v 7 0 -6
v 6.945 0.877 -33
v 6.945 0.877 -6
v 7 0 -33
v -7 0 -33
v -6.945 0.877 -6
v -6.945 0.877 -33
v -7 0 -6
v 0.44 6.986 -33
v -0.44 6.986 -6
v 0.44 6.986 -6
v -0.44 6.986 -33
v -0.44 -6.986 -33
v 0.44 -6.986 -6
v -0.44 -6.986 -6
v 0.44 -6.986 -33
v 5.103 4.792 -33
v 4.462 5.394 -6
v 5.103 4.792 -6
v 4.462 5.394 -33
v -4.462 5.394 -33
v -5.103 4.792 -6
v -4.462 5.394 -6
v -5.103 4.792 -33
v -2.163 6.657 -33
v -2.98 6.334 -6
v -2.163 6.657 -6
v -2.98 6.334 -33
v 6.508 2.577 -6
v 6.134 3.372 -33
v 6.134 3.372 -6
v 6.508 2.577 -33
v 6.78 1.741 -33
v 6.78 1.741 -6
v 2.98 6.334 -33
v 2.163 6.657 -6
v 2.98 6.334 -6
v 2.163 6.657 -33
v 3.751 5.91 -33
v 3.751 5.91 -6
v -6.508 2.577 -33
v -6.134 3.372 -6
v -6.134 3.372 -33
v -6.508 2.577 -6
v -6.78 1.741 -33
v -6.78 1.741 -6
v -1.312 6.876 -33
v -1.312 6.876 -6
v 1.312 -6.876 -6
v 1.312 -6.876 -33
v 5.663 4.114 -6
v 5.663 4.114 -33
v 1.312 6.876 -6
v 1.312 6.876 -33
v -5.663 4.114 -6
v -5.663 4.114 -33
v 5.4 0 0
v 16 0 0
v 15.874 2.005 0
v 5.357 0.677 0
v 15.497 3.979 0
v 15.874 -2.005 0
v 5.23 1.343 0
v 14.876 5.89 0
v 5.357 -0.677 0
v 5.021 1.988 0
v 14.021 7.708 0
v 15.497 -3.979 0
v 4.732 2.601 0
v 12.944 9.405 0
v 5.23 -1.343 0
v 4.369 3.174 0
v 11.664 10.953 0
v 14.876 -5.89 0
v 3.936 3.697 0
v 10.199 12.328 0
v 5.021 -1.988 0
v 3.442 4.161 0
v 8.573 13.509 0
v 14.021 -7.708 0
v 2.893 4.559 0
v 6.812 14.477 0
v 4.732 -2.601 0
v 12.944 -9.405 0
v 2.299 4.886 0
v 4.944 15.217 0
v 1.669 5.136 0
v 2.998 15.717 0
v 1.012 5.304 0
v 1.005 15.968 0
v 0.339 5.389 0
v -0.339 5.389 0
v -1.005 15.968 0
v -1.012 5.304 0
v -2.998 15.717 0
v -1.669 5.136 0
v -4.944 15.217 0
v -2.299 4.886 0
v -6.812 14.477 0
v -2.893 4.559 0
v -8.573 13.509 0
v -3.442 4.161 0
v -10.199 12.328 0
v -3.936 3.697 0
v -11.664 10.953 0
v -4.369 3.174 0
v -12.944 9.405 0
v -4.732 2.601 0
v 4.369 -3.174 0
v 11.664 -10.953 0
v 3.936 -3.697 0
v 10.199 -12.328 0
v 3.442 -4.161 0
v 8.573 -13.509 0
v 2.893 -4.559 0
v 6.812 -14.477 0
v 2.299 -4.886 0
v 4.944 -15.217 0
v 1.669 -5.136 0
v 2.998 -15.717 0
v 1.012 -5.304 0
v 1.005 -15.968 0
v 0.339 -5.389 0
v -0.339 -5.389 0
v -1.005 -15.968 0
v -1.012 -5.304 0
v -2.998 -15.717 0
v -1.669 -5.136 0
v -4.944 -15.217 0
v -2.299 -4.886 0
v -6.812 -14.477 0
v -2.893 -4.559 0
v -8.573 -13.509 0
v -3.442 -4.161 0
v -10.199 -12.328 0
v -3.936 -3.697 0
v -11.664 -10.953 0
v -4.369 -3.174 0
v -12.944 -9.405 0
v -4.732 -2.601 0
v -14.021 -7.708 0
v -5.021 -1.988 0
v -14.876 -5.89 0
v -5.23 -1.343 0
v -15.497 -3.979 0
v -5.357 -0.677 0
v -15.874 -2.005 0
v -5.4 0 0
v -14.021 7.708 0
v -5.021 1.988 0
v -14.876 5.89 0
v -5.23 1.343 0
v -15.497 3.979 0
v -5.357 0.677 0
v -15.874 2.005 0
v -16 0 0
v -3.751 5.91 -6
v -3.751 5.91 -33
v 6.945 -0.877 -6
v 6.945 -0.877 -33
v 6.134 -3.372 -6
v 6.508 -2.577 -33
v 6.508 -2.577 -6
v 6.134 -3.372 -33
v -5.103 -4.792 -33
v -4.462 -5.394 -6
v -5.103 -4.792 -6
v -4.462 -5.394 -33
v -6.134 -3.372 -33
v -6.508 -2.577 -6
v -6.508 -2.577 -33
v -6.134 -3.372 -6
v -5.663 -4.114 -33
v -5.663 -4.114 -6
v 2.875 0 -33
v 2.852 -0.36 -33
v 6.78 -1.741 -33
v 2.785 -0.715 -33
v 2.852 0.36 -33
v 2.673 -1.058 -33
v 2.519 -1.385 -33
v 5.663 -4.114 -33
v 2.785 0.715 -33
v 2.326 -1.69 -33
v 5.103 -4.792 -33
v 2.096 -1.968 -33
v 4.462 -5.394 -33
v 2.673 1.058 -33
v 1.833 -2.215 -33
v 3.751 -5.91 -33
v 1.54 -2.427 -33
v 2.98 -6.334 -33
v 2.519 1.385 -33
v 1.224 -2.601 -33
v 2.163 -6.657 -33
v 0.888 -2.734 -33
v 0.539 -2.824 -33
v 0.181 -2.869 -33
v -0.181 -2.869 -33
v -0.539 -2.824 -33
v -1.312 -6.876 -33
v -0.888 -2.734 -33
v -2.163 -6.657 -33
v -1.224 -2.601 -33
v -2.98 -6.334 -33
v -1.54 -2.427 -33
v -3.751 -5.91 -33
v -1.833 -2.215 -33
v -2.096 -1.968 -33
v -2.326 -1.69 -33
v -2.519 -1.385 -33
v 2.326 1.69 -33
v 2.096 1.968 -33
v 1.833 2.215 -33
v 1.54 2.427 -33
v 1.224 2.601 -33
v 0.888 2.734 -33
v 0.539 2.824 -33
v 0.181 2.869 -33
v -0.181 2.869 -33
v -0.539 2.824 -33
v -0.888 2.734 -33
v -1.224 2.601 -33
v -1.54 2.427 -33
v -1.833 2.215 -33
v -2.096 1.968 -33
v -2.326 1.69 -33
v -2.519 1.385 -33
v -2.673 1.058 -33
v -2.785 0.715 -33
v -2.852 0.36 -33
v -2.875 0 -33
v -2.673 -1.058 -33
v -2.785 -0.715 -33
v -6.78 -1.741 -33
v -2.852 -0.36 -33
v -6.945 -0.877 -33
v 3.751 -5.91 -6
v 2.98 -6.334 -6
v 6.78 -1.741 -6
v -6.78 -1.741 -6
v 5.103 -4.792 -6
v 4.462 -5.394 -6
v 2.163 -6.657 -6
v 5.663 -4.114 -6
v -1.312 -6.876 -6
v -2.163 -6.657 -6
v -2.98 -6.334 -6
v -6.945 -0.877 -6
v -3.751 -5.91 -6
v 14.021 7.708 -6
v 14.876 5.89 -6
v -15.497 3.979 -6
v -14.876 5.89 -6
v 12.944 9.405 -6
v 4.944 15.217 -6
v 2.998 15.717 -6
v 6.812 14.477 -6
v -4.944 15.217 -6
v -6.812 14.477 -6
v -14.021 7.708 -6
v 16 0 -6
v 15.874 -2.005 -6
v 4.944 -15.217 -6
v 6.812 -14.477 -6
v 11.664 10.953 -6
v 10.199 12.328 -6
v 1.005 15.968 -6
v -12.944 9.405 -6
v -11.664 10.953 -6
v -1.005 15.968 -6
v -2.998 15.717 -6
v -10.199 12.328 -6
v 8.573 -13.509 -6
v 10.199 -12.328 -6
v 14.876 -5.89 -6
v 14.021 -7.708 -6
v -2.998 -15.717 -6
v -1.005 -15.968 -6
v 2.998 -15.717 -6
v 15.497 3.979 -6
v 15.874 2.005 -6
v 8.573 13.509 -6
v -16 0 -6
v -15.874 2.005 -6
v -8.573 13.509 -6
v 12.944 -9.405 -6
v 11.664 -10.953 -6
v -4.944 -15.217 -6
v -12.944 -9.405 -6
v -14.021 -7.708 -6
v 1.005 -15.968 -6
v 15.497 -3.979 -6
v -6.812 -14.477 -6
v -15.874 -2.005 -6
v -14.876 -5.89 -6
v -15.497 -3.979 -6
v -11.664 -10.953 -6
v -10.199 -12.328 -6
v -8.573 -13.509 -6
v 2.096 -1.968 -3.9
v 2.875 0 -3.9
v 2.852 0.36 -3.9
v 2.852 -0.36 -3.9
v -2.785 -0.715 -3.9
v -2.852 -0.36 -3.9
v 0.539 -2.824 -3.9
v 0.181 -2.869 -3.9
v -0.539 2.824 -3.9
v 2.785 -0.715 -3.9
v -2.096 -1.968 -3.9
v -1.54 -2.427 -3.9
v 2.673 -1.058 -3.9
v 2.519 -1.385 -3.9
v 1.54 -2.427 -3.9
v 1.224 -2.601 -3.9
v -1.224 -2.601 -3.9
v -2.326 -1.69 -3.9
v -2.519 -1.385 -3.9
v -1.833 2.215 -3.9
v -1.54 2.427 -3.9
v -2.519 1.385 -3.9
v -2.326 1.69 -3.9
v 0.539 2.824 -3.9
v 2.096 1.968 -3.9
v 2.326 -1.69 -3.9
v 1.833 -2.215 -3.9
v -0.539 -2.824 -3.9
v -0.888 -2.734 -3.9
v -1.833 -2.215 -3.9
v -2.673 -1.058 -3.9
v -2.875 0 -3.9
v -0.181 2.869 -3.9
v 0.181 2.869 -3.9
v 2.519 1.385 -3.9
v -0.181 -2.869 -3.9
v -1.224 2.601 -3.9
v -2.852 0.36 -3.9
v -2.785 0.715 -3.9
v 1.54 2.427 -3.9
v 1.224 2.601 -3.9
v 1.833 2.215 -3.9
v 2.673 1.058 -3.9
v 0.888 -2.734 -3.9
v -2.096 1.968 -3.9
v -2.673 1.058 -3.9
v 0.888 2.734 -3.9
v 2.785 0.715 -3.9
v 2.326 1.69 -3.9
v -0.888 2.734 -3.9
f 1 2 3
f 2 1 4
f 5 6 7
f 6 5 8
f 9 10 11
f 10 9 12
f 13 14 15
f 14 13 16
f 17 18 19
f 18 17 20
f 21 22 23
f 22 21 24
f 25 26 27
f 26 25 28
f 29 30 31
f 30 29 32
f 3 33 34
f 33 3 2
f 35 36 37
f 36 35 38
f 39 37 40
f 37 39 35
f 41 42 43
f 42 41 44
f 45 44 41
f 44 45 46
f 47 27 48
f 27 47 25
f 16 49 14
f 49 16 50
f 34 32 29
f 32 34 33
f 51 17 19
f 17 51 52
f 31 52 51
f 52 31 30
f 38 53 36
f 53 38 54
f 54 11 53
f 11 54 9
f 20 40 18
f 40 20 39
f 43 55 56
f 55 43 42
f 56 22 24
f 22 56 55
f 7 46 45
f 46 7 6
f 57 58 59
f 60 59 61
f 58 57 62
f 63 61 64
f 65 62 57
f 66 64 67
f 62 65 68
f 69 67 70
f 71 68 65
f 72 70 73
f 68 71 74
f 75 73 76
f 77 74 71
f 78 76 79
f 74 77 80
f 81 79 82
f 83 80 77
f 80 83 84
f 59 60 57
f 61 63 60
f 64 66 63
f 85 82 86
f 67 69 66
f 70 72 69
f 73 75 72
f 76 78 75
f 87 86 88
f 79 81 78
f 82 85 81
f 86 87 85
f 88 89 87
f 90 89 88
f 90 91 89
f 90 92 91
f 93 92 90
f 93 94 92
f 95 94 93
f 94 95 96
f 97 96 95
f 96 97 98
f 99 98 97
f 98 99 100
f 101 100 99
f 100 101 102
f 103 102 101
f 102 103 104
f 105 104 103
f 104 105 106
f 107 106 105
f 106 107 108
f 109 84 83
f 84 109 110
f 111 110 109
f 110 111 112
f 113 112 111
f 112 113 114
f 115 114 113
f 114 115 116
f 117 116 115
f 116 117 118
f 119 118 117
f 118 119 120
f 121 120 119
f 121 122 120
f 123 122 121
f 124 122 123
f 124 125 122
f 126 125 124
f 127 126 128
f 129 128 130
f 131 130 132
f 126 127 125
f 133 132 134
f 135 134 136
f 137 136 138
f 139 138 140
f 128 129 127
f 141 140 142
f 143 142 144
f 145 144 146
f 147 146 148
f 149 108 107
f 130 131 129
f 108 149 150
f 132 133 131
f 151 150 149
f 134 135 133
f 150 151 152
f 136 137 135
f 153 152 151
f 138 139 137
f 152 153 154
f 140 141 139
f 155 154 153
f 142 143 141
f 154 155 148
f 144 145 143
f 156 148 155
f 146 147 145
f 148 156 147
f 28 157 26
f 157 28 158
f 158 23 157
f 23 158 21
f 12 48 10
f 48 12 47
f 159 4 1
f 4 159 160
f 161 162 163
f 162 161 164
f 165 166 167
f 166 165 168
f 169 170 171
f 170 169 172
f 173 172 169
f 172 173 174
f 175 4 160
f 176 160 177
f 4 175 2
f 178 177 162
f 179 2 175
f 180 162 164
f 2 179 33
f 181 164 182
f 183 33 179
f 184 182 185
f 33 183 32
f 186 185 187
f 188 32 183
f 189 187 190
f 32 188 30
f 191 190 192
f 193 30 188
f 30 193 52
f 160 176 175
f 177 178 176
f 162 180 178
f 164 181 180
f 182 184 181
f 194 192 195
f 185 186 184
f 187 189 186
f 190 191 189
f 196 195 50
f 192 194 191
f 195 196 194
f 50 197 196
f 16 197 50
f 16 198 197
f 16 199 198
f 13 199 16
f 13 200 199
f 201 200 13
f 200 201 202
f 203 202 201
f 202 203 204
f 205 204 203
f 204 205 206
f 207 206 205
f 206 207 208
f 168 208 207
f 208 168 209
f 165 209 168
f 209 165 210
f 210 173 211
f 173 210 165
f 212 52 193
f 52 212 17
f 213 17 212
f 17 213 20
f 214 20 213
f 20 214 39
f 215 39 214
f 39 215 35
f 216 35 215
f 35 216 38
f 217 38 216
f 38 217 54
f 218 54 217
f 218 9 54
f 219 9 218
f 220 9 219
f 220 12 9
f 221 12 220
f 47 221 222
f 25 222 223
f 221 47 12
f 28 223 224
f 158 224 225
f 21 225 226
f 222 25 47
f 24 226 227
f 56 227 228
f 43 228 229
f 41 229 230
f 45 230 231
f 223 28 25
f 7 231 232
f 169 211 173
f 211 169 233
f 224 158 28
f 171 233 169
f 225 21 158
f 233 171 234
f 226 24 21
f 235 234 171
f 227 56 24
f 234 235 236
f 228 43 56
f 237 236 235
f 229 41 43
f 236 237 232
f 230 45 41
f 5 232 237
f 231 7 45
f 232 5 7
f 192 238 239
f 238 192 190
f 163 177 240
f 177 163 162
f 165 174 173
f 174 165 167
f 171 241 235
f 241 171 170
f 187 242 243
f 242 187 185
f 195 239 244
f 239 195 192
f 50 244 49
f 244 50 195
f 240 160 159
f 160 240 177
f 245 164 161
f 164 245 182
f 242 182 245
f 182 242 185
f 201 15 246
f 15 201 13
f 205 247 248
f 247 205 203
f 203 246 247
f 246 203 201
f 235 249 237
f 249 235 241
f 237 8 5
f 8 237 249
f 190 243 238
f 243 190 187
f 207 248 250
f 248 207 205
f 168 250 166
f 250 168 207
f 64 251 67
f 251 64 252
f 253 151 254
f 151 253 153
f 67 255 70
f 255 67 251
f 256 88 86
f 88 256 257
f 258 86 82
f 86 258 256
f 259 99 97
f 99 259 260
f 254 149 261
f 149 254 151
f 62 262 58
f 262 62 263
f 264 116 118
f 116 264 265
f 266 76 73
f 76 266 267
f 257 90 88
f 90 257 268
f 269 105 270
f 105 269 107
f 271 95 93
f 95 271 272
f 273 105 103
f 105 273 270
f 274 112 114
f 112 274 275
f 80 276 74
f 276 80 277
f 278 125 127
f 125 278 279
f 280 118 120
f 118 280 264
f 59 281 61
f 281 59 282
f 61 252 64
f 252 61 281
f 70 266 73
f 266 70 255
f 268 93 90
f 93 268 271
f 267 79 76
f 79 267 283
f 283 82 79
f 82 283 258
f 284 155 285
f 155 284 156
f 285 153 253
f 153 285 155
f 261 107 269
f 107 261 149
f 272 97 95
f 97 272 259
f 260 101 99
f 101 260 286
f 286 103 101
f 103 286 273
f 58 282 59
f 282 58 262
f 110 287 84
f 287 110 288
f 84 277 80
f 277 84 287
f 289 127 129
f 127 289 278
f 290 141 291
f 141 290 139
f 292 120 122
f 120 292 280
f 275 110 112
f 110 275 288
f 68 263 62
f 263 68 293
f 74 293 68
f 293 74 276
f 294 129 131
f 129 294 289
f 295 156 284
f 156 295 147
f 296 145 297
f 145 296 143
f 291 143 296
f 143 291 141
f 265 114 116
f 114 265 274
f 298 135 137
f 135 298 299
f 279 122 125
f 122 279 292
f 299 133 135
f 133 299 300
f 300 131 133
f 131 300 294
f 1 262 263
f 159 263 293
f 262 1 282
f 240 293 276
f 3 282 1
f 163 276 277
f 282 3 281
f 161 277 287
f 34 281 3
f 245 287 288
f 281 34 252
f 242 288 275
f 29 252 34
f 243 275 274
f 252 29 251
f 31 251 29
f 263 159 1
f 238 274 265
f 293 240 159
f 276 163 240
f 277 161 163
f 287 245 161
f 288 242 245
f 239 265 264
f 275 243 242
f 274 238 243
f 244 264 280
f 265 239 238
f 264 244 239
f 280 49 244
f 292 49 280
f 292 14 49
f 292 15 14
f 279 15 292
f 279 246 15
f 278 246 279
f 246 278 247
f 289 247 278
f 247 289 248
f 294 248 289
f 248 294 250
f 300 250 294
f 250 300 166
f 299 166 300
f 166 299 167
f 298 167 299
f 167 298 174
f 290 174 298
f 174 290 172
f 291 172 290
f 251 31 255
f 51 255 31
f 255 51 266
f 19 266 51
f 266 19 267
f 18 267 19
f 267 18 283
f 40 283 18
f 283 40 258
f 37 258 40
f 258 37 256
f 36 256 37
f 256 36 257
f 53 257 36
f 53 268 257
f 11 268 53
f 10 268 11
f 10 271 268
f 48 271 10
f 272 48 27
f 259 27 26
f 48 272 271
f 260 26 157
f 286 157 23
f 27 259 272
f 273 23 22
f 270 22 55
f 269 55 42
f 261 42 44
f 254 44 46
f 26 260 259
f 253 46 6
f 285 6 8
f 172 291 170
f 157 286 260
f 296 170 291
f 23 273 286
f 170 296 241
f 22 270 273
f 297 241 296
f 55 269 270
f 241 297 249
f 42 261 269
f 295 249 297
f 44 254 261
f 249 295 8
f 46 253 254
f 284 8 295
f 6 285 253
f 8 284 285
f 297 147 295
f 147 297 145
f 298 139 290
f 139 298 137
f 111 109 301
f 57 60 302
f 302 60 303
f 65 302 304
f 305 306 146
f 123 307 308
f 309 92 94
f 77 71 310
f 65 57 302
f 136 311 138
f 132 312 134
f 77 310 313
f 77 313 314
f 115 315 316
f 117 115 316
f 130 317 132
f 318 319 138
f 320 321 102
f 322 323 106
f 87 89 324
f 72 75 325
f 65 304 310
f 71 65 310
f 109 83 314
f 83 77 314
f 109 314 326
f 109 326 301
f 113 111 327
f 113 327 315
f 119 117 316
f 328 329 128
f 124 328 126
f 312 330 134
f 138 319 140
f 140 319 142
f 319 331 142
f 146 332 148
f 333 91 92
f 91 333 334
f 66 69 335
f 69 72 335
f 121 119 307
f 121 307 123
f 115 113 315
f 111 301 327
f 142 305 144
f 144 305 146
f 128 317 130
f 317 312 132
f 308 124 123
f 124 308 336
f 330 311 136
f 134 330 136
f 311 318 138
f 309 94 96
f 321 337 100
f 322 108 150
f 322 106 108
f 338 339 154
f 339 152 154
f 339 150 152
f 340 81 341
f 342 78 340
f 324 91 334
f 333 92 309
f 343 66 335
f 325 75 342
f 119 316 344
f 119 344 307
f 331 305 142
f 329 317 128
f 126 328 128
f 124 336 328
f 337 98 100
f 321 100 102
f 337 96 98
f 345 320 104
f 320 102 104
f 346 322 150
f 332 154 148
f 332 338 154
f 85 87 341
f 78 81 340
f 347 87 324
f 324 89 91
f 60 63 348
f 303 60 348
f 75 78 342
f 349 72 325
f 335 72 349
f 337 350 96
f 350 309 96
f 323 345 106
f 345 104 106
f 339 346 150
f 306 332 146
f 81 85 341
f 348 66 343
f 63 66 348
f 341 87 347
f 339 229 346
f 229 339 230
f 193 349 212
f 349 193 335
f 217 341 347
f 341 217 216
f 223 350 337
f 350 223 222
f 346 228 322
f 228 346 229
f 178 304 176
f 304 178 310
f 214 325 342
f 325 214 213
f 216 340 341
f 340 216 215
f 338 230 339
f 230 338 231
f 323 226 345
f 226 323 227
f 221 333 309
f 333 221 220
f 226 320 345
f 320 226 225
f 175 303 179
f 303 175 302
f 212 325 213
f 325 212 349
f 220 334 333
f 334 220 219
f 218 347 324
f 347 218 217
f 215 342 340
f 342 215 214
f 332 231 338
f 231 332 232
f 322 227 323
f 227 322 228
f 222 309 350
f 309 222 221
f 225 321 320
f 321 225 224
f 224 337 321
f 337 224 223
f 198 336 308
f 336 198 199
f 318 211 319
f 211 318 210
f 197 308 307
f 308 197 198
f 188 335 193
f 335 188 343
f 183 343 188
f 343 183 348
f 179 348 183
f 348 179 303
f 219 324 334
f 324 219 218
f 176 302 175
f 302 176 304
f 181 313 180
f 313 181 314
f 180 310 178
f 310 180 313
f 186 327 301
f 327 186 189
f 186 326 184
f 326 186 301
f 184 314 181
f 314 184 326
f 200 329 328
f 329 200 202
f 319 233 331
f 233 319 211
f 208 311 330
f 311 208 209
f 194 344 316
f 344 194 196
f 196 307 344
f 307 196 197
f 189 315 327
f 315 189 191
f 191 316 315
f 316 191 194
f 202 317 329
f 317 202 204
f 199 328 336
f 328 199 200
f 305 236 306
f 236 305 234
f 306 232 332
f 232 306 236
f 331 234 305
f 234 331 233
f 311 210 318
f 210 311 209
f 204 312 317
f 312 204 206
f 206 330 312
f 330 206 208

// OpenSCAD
$fn = 50;


difference() {
	union() {
		translate(v = [0, 0, -33.0000000000]) {
			cylinder(h = 33, r = 7.0000000000);
		}
		translate(v = [0, 0, -6.0000000000]) {
			cylinder(h = 6, r = 16.0000000000);
		}
	}
	union() {
		translate(v = [0, 0, 0]) {
			rotate(a = [0, 0, 0]) {
				difference() {
					union() {
						#translate(v = [0, 0, -33.0000000000]) {
							cylinder(h = 33, r = 2.6000000000);
						}
						#translate(v = [0, 0, -3.9000000000]) {
							cylinder(h = 3.9000000000, r = 7.0000000000, r1 = 2.8750000000, r2 = 5.4000000000);
						}
						#translate(v = [0, 0, -33.0000000000]) {
							cylinder(h = 33, r = 2.8750000000);
						}
						#translate(v = [0, 0, -33.0000000000]) {
							cylinder(h = 33, r = 2.6000000000);
						}
					}
					union();
				}
			}
		}
	}
}
